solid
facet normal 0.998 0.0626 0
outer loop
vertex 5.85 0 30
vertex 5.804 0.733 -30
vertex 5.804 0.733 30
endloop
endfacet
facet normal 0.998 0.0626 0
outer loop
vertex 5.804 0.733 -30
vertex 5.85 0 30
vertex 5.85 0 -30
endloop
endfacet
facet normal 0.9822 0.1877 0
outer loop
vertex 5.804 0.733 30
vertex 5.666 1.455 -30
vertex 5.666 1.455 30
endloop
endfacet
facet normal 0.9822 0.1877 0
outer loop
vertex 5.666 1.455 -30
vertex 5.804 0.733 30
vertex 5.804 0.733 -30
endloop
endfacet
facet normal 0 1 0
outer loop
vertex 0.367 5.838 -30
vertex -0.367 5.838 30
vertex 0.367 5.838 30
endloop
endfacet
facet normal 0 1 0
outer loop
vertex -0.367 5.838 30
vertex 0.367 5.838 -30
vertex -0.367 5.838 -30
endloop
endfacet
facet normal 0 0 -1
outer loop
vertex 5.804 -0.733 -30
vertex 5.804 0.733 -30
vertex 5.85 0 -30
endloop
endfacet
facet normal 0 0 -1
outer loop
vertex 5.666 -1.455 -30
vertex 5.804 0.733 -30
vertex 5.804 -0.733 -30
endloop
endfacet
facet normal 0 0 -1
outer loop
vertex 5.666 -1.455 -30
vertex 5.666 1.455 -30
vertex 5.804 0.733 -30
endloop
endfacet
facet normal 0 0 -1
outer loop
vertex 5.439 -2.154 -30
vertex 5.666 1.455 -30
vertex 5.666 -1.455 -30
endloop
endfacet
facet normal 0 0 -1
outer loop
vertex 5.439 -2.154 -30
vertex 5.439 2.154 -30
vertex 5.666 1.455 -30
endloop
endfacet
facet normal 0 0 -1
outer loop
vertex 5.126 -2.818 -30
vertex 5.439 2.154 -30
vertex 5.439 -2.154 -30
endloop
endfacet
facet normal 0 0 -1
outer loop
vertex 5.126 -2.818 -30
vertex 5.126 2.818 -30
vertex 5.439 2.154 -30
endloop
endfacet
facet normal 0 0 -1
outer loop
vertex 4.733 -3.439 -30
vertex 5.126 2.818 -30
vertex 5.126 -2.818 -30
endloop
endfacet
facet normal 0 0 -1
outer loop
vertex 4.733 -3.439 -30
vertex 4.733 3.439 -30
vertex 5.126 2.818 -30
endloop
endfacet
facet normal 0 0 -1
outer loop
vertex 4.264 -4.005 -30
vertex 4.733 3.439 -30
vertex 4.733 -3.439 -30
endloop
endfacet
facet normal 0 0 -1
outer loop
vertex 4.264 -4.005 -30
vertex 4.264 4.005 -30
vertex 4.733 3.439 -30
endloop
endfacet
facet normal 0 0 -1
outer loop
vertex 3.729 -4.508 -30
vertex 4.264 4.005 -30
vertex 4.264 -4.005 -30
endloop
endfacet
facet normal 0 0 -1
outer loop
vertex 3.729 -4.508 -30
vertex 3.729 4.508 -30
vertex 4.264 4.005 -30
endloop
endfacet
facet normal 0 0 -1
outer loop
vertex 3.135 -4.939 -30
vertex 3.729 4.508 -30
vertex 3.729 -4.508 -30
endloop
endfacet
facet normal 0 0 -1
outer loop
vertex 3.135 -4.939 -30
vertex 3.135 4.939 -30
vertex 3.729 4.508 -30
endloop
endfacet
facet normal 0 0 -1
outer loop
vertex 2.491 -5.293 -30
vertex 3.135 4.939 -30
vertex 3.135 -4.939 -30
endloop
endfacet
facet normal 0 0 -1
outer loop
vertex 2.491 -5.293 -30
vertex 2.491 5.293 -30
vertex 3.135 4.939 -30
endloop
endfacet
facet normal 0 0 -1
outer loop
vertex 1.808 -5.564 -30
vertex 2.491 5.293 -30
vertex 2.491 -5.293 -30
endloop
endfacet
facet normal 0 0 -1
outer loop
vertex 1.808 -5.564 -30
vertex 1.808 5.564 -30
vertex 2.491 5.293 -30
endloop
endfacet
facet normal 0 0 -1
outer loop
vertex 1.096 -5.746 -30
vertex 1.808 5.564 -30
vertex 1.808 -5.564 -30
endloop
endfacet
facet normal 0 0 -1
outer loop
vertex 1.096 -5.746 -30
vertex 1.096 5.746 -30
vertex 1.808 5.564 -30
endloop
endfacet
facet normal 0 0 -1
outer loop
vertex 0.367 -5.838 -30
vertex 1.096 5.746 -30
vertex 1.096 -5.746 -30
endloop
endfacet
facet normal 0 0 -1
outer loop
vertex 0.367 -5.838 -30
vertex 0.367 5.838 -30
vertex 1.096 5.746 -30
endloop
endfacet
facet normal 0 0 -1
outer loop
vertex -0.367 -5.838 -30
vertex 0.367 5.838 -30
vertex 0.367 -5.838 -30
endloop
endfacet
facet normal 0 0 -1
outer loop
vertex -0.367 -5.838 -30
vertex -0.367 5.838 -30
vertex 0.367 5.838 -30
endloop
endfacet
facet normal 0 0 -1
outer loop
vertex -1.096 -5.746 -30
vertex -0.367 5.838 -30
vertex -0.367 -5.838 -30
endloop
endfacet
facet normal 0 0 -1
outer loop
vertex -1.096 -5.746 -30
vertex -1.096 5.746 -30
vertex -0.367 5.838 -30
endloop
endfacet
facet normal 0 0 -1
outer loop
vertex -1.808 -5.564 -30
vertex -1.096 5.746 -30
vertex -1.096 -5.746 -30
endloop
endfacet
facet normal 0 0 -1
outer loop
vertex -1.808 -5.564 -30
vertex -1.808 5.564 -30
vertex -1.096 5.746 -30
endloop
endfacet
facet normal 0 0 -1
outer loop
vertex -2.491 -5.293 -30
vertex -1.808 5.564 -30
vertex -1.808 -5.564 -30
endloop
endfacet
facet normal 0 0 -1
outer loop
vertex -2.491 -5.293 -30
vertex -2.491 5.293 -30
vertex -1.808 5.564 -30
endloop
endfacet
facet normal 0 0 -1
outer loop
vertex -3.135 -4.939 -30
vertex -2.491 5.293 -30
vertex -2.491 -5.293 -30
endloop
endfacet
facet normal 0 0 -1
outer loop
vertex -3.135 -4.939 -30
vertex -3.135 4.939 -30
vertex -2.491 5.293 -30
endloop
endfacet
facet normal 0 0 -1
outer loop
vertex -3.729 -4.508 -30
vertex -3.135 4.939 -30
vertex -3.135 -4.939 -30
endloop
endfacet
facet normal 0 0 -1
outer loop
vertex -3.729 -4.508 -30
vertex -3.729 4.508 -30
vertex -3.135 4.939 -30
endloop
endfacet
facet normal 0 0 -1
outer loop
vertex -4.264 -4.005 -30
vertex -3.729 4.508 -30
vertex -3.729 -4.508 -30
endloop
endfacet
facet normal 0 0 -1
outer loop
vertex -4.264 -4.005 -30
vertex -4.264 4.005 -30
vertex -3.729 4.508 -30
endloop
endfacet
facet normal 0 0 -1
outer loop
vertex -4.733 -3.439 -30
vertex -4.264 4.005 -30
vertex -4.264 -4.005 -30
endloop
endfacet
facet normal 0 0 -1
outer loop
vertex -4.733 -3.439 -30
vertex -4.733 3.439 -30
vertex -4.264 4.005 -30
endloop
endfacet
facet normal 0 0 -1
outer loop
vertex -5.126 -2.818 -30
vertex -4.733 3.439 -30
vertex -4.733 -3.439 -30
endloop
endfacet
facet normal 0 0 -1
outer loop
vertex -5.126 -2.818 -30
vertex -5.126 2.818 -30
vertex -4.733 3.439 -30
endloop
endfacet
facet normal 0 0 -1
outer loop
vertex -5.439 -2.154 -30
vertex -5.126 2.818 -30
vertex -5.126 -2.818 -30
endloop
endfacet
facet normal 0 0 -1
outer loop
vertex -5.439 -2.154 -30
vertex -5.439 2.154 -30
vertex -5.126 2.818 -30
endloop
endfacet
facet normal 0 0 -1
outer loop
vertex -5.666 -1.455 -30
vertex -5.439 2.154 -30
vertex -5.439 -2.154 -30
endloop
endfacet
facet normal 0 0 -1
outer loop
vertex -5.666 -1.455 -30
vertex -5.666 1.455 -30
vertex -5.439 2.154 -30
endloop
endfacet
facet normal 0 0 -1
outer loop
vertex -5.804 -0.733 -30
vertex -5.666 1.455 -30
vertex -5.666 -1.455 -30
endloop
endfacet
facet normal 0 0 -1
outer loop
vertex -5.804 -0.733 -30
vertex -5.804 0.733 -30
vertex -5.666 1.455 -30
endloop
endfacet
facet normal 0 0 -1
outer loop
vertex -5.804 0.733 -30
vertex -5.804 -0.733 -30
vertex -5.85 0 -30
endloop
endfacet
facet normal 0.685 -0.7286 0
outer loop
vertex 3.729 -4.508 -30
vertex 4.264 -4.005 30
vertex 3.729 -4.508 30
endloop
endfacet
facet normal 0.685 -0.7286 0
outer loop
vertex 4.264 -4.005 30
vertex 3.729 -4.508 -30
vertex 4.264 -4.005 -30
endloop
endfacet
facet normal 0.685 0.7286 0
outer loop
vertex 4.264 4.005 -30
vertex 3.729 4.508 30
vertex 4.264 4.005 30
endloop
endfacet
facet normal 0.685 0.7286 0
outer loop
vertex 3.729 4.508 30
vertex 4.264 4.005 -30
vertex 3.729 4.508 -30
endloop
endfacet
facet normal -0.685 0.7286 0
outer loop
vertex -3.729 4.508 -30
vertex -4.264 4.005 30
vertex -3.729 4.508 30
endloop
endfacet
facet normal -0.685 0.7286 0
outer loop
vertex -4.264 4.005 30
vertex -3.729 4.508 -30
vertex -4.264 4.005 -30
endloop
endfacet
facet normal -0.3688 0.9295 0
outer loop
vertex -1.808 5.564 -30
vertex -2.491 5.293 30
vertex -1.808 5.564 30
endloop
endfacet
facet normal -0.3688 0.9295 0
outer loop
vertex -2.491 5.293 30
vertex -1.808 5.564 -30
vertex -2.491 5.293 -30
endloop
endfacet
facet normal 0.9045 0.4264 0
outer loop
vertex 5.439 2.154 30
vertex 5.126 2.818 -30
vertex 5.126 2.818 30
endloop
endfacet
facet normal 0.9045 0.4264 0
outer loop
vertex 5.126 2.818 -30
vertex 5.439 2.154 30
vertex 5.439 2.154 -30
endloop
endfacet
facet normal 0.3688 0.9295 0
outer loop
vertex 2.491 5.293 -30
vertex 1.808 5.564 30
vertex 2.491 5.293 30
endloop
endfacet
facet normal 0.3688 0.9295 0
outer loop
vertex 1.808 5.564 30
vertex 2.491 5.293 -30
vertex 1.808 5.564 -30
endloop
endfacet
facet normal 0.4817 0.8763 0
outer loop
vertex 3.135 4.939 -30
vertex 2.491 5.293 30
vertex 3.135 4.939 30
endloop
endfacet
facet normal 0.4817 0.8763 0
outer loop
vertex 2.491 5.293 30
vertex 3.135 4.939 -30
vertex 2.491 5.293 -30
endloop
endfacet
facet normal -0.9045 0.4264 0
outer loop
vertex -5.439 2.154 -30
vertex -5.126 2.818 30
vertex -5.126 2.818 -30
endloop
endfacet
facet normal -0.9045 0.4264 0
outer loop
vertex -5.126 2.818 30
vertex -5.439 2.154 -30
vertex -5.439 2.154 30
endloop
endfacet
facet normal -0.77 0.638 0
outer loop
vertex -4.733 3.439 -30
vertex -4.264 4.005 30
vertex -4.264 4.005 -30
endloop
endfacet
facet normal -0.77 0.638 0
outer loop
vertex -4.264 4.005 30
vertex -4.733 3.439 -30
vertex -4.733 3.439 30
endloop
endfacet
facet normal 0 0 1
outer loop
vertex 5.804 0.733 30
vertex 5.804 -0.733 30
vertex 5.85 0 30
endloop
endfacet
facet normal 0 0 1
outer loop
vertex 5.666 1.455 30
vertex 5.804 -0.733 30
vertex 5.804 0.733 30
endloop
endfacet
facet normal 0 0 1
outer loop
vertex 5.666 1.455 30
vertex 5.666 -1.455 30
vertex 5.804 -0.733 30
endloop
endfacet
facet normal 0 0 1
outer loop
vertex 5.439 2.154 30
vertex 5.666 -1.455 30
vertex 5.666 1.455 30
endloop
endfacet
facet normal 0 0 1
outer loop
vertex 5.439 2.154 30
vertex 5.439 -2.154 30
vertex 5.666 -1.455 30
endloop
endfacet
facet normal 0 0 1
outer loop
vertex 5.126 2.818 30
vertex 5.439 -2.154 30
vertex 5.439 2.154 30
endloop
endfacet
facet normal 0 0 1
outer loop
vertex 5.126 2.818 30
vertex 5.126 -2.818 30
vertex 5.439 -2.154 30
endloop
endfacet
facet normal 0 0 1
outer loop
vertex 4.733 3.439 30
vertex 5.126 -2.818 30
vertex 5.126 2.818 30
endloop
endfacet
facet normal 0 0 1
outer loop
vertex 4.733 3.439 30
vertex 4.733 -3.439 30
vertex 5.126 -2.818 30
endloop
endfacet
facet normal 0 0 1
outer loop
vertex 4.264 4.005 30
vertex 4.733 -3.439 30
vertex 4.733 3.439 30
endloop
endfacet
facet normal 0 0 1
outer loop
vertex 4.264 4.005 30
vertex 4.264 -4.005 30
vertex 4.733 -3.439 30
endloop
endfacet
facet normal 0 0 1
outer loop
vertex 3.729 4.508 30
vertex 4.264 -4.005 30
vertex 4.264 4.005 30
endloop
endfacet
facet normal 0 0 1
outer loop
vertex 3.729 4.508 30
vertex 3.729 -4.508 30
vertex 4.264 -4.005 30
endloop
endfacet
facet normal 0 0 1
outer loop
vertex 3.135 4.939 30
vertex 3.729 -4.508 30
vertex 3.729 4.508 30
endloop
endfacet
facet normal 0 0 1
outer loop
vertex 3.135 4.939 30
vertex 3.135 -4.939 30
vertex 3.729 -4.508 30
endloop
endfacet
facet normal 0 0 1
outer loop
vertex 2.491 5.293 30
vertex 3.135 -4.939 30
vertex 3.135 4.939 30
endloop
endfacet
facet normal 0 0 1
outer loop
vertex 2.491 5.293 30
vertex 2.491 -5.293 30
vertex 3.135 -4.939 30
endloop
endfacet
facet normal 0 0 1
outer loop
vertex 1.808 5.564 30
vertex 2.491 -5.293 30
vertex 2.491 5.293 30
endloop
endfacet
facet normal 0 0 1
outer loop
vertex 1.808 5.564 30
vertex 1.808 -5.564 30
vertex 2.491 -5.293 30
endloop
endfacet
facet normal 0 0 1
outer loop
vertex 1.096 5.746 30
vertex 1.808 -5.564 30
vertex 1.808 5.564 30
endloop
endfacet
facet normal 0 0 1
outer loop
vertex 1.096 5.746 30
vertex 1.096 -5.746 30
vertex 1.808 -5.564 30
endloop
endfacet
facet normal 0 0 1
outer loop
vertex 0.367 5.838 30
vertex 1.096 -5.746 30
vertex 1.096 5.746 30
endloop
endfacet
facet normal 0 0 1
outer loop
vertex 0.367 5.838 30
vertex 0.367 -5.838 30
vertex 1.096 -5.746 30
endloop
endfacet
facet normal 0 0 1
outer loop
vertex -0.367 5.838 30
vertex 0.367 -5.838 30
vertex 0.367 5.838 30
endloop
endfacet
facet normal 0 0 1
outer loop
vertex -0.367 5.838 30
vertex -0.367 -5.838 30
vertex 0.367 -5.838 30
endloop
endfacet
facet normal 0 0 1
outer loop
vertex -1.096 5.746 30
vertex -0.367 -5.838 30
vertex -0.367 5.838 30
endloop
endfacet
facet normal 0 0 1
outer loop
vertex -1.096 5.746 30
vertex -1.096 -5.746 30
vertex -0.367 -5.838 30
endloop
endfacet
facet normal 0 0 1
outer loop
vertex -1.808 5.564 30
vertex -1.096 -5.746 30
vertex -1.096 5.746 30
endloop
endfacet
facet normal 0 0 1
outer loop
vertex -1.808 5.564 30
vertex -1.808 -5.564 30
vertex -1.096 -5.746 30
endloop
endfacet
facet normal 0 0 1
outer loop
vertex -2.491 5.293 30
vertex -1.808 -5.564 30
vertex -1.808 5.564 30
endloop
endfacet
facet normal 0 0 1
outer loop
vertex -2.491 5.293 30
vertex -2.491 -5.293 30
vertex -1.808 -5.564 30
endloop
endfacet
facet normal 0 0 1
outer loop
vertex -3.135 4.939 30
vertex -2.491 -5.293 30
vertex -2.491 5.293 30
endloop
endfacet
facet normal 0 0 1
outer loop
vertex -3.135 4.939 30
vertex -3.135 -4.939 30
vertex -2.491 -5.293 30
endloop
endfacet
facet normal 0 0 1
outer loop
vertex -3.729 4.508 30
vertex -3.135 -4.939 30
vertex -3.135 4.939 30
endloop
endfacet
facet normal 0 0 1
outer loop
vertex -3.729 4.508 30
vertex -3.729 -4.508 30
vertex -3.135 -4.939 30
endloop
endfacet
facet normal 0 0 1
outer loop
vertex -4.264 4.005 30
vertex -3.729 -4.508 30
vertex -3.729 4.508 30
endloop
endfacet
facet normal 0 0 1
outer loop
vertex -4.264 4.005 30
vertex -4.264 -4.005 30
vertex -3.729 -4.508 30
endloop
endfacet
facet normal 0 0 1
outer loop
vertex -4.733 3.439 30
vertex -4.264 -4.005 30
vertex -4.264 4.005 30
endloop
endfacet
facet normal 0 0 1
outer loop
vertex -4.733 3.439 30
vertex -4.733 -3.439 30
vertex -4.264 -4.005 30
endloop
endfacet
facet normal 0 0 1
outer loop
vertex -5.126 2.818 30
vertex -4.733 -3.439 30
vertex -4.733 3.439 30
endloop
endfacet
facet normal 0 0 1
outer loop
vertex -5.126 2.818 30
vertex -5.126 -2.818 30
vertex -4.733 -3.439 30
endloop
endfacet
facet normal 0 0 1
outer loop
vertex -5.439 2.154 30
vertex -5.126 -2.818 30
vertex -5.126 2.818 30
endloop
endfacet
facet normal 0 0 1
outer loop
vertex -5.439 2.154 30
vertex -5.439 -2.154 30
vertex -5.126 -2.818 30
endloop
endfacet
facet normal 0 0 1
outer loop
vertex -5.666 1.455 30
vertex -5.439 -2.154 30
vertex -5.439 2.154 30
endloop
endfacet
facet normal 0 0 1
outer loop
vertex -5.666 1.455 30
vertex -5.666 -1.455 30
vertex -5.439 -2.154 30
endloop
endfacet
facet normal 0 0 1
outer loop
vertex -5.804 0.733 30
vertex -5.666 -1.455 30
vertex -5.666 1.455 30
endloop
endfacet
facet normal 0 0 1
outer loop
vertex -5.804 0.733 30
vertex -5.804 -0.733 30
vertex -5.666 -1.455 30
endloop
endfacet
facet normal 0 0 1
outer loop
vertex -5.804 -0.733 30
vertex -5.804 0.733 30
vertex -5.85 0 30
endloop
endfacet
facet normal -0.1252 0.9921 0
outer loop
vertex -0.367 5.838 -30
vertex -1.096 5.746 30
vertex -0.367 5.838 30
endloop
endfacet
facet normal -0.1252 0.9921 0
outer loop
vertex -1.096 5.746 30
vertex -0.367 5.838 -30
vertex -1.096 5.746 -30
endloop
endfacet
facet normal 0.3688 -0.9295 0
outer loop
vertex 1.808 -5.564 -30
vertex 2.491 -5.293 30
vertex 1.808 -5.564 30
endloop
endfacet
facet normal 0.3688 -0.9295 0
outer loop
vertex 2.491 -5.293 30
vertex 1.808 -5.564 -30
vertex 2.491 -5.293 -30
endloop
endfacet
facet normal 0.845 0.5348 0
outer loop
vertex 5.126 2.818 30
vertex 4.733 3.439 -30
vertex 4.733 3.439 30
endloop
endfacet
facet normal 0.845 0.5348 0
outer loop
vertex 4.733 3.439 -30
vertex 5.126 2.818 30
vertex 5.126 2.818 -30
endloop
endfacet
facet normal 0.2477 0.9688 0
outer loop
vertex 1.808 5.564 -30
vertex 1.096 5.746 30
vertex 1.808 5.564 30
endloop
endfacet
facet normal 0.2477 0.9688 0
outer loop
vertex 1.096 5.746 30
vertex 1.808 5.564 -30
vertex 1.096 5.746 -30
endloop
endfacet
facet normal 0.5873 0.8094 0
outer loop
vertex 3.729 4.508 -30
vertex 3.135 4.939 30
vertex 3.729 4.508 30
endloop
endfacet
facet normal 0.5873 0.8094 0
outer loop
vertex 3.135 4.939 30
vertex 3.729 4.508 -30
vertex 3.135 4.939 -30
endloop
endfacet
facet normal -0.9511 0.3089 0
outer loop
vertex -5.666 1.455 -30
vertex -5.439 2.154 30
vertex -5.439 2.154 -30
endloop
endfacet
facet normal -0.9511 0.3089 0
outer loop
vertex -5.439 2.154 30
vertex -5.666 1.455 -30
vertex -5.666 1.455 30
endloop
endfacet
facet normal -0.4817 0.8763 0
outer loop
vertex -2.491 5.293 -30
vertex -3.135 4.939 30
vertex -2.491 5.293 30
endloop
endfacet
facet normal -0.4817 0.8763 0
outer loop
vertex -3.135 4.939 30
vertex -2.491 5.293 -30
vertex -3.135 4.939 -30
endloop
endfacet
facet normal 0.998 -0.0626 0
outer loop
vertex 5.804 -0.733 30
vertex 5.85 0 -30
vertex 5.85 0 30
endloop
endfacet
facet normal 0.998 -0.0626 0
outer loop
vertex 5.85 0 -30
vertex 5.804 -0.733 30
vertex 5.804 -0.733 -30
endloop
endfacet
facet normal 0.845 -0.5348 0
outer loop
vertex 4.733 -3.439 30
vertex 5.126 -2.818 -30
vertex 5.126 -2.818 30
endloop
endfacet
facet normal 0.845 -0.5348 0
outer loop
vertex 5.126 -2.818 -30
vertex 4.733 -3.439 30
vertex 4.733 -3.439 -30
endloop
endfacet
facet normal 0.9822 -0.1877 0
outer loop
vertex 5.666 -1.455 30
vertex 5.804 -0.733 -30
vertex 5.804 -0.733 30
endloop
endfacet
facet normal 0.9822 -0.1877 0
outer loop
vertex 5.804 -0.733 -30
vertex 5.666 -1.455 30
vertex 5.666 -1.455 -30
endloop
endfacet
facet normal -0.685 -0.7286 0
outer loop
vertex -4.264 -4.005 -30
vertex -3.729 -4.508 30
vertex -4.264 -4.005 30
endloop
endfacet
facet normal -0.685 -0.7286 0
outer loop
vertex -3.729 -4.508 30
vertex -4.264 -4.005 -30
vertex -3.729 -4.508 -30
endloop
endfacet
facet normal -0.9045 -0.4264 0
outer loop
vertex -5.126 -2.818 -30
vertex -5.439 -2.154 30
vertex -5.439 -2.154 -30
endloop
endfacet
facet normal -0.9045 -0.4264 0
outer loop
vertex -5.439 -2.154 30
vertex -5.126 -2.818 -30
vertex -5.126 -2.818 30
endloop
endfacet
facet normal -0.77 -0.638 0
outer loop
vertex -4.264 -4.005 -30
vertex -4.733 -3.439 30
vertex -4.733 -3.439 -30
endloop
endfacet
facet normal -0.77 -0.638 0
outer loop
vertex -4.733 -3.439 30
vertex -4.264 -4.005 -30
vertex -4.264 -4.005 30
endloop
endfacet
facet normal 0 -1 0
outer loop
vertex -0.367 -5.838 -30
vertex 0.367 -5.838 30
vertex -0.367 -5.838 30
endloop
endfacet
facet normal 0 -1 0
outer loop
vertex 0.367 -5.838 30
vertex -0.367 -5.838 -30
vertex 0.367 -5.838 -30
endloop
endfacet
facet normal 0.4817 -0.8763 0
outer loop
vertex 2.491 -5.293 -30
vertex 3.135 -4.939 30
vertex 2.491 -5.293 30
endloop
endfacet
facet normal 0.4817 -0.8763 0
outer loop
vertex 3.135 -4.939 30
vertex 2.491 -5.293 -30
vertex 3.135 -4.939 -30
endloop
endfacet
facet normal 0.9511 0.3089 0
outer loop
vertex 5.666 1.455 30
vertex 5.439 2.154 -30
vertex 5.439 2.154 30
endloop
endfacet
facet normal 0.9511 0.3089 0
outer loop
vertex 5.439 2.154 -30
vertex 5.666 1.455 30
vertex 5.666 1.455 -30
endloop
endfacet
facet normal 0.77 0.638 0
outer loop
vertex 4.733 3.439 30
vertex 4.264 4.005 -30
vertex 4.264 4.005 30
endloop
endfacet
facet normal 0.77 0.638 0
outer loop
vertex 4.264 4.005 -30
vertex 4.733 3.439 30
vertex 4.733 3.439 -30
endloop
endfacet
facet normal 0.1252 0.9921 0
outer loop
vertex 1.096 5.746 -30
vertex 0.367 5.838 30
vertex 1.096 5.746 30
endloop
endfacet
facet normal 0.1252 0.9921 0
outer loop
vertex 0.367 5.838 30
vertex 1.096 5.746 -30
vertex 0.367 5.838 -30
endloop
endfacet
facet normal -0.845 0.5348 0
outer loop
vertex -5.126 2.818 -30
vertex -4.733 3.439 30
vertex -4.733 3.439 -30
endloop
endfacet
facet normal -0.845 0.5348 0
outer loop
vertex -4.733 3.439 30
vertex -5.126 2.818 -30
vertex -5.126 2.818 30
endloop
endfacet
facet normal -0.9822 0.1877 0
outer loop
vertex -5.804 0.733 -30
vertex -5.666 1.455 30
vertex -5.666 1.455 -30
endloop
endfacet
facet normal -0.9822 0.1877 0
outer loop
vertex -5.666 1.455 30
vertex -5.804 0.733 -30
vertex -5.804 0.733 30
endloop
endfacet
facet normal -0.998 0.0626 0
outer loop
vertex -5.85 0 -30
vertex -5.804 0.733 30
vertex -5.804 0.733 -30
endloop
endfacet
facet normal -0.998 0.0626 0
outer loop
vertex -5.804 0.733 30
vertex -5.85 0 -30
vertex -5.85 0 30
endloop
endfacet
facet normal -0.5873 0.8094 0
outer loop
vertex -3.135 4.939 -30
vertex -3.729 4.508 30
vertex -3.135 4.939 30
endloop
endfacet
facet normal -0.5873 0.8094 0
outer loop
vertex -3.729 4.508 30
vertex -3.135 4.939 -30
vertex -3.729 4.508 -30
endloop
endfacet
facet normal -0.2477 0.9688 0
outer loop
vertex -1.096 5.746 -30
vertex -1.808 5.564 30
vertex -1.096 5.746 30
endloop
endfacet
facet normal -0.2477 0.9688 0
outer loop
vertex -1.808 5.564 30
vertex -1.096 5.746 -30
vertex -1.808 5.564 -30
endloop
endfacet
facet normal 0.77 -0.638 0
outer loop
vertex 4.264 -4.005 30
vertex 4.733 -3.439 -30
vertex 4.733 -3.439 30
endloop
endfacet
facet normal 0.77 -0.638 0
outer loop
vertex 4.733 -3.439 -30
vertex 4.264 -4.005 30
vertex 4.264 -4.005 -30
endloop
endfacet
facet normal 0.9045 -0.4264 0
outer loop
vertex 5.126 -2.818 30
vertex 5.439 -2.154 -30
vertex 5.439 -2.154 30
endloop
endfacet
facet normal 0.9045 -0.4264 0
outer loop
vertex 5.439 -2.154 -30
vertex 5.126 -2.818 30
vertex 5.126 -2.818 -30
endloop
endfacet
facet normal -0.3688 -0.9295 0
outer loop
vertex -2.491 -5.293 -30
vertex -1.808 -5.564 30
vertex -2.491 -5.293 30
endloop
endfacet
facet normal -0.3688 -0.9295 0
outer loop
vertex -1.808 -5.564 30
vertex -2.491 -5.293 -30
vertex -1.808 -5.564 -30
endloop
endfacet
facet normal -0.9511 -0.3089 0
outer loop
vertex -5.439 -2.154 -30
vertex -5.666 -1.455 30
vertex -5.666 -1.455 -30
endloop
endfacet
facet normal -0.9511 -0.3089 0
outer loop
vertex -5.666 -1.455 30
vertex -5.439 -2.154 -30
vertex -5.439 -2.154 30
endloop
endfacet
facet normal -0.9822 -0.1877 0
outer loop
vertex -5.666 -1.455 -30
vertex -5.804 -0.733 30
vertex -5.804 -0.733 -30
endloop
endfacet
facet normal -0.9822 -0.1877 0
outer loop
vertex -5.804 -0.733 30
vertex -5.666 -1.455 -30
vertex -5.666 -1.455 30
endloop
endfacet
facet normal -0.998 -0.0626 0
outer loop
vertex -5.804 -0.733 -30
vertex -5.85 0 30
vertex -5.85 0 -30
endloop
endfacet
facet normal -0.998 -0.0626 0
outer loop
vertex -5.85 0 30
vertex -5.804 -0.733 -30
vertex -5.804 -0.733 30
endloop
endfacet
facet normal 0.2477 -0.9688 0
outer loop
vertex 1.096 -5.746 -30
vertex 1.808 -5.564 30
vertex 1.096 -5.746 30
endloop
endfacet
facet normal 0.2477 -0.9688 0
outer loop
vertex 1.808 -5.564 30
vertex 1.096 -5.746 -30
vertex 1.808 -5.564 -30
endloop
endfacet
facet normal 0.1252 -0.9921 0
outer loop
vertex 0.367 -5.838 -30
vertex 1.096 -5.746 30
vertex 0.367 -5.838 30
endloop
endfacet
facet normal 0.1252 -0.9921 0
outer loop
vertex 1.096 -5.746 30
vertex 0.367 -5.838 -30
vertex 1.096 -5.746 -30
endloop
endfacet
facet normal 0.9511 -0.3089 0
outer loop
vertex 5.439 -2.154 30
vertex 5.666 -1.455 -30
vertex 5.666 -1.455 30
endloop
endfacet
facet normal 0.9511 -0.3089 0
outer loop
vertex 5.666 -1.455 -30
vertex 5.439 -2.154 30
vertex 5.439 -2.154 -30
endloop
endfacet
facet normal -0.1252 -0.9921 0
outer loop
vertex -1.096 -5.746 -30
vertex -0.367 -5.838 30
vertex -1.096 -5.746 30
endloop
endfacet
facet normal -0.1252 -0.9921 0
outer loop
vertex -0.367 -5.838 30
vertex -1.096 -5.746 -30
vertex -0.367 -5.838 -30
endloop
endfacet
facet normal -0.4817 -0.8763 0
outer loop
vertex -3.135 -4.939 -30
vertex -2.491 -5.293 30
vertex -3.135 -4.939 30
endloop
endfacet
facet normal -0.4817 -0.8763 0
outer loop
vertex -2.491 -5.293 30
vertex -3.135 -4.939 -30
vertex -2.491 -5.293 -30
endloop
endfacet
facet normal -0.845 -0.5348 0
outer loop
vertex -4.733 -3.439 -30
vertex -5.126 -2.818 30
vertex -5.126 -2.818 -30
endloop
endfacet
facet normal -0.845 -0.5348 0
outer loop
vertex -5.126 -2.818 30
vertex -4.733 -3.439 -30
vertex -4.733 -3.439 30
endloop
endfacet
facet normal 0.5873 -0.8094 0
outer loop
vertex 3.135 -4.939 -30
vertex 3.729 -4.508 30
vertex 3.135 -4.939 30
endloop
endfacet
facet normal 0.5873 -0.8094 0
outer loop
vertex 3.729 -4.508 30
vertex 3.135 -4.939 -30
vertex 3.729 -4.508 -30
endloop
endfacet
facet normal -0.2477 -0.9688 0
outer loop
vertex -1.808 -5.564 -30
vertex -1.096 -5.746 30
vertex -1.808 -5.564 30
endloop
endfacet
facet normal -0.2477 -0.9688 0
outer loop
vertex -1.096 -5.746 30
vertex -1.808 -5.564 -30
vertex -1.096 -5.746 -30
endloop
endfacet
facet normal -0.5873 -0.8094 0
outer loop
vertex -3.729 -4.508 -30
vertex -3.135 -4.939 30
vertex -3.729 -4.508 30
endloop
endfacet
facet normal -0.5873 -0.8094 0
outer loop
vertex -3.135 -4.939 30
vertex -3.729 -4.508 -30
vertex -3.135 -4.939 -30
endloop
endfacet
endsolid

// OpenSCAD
$fn = 50;


difference() {
	union() {
		translate(v = [0, 0, -30.0000000000]) {
			cylinder(h = 60, r = 5.8500000000);
		}
	}
	union() {
		translate(v = [0, 0, -100.0000000000]) {
			cylinder(h = 200, r = 0);
		}
	}
}
